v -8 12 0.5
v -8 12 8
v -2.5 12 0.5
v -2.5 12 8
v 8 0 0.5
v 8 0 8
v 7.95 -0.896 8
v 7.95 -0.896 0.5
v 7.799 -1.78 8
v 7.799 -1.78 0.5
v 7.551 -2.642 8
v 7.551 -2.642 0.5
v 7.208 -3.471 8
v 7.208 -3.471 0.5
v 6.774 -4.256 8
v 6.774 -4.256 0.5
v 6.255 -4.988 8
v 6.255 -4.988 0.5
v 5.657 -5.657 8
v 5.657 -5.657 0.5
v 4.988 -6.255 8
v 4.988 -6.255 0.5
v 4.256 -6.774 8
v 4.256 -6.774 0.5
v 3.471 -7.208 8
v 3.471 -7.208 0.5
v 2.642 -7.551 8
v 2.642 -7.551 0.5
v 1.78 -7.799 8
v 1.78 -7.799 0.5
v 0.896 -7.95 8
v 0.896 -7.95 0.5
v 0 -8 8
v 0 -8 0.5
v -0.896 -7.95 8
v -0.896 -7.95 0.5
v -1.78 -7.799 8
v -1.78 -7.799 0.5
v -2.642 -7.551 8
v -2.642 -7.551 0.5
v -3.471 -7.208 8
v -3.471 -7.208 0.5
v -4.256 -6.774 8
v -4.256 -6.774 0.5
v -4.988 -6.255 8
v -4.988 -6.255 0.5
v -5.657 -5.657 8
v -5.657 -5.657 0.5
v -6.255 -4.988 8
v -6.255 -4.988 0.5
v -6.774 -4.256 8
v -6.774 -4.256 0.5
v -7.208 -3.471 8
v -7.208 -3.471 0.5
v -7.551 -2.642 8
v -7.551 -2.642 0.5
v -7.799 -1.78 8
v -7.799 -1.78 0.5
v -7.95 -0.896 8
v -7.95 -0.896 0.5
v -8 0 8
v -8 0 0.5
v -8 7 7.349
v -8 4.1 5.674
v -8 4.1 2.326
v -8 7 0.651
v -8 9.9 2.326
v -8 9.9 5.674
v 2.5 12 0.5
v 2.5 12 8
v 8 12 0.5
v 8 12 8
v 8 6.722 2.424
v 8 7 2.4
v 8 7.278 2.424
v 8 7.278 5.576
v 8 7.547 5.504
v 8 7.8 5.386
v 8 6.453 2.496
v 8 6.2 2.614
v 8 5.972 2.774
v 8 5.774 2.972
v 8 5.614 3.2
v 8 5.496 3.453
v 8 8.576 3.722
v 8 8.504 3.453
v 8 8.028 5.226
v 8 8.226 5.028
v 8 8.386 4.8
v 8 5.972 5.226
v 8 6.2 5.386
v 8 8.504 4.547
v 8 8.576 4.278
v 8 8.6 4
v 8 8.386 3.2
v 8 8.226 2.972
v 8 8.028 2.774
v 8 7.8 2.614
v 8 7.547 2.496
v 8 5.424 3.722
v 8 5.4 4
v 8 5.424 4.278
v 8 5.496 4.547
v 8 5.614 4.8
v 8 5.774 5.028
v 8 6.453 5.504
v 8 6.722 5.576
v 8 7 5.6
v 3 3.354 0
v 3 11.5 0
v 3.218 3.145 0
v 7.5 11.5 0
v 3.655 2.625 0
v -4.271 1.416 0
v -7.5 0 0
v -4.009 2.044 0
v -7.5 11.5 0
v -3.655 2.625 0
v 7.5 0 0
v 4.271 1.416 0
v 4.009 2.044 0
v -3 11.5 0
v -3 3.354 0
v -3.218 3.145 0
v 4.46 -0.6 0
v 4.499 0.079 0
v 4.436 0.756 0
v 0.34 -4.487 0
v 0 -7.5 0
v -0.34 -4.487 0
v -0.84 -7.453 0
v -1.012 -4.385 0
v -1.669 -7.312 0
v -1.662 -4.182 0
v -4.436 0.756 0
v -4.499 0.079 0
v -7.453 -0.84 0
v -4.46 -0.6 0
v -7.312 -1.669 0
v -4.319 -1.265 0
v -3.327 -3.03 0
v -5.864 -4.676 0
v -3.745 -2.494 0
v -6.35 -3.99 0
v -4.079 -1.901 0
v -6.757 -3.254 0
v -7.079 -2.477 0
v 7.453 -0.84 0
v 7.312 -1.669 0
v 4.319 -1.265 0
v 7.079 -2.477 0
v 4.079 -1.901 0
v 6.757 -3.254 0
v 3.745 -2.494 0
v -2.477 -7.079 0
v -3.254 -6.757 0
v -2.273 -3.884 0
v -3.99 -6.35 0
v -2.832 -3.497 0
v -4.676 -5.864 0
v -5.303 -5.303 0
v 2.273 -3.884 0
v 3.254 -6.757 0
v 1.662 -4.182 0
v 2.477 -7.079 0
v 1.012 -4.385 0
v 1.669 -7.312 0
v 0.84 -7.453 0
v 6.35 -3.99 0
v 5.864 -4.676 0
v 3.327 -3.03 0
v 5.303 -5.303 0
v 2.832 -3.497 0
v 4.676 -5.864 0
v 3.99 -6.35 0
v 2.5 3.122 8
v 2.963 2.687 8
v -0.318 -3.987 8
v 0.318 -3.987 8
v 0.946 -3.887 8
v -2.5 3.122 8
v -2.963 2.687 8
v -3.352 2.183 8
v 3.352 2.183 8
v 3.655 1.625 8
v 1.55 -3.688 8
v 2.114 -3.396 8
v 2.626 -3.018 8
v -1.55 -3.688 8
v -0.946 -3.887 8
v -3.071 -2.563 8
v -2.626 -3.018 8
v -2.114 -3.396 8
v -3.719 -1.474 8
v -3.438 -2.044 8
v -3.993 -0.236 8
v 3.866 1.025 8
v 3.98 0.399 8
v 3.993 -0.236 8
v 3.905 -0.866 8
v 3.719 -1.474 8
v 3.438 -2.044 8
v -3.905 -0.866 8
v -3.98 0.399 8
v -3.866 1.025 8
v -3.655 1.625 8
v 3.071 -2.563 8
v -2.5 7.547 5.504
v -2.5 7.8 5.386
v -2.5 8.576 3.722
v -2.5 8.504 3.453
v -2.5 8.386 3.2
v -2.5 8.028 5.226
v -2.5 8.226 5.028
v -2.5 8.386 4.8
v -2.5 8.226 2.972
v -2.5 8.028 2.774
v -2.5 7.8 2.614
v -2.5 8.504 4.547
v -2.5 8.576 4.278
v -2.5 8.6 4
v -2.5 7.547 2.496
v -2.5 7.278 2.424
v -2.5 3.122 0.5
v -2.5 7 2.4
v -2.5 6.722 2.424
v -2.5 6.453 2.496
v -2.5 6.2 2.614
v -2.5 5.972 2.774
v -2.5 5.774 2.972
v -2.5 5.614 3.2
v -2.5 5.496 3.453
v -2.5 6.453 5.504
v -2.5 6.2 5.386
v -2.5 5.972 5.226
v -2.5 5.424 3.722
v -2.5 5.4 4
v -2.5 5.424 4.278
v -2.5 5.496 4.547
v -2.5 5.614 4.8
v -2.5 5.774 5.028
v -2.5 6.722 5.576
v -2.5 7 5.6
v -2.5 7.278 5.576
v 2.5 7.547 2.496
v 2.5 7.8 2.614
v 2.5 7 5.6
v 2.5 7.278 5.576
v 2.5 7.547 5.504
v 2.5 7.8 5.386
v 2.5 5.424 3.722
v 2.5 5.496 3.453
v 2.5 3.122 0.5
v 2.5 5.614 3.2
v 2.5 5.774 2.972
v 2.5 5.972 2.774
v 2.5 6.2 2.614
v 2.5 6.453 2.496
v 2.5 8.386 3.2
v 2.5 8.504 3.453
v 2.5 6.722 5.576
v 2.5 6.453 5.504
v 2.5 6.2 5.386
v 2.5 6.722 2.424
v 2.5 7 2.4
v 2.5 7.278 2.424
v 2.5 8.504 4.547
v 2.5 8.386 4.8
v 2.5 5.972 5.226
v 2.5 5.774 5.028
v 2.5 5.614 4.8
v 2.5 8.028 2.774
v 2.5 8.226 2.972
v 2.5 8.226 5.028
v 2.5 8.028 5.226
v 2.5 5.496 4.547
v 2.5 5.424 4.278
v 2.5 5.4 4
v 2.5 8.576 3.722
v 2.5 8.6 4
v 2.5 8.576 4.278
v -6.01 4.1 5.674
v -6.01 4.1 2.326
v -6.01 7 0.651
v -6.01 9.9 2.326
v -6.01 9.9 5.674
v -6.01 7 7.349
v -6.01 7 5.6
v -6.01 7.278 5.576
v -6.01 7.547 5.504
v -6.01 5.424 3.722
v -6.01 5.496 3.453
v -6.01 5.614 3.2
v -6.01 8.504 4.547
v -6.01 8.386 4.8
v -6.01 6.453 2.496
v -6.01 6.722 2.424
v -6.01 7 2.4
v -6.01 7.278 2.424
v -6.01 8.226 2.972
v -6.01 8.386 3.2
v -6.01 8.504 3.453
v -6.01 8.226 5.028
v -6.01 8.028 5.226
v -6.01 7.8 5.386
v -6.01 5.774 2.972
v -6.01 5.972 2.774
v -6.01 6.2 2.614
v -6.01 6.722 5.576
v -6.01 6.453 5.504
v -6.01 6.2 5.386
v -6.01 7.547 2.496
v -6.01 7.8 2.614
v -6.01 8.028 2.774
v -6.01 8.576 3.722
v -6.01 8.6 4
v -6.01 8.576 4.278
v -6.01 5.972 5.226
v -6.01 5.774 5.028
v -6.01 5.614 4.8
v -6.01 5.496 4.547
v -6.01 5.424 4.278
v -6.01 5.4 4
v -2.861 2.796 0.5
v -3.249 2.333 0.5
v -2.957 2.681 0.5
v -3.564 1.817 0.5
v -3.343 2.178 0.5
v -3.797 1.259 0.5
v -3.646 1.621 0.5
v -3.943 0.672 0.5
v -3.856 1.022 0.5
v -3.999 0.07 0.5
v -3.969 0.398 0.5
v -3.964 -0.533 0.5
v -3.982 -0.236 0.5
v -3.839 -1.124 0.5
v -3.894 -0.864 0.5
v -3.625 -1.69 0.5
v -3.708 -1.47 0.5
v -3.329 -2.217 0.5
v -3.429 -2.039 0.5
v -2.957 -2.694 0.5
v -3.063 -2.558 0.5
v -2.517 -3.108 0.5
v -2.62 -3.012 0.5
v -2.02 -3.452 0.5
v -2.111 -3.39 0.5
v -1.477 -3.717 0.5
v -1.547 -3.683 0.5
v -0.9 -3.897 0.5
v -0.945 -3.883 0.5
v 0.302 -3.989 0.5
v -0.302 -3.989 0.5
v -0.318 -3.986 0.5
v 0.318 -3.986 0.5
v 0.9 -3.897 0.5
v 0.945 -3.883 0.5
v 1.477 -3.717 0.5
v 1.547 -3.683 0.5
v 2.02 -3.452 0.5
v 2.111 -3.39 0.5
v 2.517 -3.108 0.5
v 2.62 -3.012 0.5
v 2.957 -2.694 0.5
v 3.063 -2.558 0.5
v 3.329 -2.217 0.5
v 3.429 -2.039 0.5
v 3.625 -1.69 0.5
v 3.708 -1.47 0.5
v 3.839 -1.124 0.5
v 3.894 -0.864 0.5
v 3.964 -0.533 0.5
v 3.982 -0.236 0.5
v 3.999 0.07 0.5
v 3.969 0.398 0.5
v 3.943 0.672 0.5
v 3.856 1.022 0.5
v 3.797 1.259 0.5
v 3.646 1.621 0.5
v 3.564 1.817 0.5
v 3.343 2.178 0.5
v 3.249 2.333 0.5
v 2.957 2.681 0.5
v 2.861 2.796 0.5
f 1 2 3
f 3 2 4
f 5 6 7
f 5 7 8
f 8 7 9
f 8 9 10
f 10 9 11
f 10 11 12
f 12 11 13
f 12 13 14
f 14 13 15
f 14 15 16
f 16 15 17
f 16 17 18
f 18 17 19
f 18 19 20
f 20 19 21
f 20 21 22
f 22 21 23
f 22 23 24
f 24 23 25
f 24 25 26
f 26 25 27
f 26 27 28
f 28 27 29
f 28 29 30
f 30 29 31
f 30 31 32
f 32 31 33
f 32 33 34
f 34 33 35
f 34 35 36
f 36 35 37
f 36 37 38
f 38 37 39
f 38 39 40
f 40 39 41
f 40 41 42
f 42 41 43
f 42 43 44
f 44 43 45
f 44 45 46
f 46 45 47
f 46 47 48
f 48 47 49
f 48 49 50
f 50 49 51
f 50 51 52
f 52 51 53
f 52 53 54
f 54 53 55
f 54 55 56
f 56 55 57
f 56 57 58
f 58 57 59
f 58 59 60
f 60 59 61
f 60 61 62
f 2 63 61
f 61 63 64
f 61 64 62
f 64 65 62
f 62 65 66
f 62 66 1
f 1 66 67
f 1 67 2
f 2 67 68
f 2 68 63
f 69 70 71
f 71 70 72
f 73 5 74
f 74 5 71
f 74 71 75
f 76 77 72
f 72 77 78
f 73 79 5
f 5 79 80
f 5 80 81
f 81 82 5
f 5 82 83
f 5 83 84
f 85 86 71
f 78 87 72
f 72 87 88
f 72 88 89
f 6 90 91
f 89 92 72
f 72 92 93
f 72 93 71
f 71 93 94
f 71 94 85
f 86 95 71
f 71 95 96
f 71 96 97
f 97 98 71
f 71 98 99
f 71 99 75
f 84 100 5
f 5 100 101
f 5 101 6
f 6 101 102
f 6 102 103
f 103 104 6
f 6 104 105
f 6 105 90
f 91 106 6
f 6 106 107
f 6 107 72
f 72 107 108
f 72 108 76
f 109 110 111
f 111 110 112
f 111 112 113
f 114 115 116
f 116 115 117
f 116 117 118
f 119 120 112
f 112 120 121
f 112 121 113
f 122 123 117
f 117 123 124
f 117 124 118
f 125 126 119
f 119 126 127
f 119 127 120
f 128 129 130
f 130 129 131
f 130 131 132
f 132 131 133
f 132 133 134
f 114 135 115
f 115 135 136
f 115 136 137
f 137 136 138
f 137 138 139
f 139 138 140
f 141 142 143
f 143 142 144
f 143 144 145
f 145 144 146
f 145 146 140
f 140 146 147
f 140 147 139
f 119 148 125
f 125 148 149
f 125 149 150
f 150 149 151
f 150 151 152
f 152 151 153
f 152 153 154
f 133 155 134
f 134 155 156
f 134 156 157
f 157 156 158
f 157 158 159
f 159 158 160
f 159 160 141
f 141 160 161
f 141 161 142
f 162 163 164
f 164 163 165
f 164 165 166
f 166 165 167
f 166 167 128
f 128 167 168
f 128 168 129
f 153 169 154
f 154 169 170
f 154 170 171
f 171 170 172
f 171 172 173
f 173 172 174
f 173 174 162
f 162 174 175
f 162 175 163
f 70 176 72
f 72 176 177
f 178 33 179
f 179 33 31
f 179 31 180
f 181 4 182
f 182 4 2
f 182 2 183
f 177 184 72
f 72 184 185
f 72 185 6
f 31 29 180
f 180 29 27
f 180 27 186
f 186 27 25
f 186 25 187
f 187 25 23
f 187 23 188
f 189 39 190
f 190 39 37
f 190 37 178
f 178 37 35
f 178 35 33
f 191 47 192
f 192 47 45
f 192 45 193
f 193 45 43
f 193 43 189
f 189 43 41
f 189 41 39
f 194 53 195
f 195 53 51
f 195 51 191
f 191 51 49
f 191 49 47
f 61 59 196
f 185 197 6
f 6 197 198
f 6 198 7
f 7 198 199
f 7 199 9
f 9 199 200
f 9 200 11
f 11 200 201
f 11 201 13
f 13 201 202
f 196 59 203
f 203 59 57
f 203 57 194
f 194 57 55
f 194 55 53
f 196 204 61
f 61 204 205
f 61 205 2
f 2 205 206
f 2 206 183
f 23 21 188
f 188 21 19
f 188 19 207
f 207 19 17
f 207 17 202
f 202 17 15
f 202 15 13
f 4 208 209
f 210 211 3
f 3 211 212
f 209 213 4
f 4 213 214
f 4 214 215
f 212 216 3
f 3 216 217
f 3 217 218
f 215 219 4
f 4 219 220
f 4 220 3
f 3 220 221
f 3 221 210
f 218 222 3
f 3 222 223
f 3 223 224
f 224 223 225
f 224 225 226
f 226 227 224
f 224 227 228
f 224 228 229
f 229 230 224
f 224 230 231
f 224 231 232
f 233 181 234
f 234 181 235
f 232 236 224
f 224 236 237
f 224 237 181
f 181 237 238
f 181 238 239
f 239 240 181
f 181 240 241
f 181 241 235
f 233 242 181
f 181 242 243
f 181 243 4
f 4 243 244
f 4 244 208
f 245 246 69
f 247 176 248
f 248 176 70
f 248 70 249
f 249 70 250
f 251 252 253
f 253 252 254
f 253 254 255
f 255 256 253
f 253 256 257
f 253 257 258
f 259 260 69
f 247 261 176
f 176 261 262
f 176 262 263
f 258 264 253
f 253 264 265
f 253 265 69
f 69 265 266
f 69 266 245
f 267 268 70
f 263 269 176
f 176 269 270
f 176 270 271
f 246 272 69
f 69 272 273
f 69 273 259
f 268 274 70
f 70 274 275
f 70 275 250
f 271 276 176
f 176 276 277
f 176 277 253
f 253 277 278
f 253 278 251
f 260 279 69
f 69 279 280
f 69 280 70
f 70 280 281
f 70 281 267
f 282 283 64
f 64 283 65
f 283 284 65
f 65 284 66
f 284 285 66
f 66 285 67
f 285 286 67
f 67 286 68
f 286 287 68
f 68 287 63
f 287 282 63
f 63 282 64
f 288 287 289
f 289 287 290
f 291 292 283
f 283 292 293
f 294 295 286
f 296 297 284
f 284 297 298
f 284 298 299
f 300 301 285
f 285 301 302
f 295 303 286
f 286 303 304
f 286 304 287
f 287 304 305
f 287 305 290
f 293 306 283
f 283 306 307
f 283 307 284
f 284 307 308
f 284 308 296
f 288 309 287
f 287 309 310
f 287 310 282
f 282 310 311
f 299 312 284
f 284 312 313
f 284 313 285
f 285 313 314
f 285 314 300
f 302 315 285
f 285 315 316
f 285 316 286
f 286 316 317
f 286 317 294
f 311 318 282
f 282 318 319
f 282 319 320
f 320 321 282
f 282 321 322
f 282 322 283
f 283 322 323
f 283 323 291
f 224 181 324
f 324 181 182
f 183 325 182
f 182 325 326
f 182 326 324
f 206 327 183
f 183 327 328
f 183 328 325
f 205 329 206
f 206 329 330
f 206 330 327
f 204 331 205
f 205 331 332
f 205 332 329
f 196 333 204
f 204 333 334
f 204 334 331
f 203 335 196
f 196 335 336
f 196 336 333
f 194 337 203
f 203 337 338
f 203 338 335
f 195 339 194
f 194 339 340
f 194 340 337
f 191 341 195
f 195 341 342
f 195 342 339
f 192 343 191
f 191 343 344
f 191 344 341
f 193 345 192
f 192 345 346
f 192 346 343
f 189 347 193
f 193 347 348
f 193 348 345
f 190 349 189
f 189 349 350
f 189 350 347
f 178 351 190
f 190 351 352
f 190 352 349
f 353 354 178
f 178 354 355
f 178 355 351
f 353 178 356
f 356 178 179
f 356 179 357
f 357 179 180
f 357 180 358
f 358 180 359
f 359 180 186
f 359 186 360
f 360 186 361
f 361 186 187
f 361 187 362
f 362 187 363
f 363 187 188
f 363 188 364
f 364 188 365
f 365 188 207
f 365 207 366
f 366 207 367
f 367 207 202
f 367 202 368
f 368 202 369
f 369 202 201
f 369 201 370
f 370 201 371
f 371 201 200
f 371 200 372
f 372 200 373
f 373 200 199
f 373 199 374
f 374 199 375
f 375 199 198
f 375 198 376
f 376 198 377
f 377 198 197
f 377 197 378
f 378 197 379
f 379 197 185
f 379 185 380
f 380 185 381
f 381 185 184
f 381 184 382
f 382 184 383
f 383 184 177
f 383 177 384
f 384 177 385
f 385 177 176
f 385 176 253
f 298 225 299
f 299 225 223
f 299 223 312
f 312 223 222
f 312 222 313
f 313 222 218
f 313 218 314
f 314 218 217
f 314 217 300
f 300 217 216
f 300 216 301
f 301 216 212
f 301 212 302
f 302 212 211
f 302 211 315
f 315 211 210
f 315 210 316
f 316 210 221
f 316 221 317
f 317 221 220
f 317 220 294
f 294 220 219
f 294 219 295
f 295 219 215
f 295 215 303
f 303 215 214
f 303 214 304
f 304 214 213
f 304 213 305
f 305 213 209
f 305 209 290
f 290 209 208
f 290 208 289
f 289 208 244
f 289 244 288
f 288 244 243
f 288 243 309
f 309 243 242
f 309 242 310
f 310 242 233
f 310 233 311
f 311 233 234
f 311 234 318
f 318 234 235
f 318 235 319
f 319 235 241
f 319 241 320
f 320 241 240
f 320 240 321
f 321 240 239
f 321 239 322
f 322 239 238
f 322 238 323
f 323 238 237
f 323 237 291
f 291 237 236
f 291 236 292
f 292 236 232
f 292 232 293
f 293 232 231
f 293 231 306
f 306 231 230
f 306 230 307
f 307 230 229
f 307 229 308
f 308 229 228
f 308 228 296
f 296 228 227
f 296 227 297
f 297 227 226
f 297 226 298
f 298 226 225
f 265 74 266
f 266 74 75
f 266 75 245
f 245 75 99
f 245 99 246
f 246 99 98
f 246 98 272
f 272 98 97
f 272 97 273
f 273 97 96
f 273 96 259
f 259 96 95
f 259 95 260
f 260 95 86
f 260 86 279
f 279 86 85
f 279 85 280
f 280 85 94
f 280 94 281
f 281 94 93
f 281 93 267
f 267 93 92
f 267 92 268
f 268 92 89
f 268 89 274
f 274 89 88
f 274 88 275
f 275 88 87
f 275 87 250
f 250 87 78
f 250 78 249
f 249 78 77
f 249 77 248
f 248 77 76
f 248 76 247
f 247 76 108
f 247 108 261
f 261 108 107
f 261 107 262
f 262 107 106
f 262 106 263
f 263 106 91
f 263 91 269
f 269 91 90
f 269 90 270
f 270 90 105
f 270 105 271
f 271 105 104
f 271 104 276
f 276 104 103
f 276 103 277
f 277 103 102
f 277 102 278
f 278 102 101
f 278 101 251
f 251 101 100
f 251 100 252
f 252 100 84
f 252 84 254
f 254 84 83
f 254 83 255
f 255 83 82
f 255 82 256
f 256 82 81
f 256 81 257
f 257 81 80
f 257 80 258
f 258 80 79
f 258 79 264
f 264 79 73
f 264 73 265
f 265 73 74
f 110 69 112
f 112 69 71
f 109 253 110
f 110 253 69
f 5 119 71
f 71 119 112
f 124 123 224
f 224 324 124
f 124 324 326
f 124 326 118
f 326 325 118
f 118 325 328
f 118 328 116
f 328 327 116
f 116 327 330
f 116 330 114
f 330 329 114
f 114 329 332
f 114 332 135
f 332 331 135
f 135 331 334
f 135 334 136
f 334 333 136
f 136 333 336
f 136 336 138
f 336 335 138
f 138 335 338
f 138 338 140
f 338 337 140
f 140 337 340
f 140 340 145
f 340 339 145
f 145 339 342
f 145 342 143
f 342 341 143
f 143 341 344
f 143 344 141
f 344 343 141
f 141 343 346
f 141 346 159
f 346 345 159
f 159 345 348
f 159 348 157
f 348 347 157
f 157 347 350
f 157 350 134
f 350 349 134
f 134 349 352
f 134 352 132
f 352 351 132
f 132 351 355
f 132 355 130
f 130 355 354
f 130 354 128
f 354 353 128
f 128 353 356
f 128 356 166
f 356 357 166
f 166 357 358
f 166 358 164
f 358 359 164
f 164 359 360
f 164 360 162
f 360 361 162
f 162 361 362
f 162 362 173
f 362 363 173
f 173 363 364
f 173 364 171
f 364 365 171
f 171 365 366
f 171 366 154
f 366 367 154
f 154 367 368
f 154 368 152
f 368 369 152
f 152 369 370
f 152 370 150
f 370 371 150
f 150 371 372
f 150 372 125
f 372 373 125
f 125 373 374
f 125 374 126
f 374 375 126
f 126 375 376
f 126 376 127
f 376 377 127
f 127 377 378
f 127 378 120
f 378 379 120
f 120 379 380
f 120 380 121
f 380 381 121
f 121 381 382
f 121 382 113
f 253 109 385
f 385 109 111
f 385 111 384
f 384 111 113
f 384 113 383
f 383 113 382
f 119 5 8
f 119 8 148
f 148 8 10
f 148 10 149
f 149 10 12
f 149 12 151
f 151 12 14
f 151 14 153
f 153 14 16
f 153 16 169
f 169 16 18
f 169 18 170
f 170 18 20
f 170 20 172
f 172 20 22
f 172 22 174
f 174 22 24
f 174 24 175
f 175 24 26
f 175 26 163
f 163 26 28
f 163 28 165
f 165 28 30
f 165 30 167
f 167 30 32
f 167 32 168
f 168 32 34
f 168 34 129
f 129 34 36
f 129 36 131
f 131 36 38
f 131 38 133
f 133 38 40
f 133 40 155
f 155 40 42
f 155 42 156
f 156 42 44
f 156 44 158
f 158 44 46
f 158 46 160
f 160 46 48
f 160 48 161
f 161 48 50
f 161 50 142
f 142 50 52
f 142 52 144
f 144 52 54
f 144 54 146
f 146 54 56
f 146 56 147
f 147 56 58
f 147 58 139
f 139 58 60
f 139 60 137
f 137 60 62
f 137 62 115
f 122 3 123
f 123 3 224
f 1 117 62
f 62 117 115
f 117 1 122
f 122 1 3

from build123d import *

# Parameters (mm, degrees)
BOSS_EXTRUDE1_DEPTH = 8
CUT_EXTRUDE1_DEPTH  = 17.492422502
CUT_EXTRUDE2_DEPTH  = 1.99
CUT_EXTRUDE4_REACH  = 23.541
SKETCH6_W           = 4
SKETCH6_H           = 8
SKETCH7_R           = 1.6
CUT_EXTRUDE5_DEPTH  = 22.540659229
CHAMFER1_SIZE       = 0.5


with BuildPart() as part:
    # Sketch1 → Boss-Extrude1 (new body)
    with BuildSketch(Plane.XY.offset(8)):
        with BuildLine():
            Line((8, 0), (8, 12))
            Line((8, 12), (-8, 12))
            Line((-8, 12), (-8, 0))
            ThreePointArc((-8, 0), (0, -8), (8, 0))
        make_face()
    extrude(amount=-BOSS_EXTRUDE1_DEPTH)

    # Sketch2 → Cut-Extrude1 (cut, through all)
    with BuildSketch(Plane(origin=(0, 0, 0), x_dir=(-1, 0, 0), z_dir=(0, 0, -1))):
        with BuildLine():
            Line((2.5, 12), (-2.5, 12))
            Line((-2.5, 12), (-2.5, 3.122498999))
            ThreePointArc((-2.5, 3.122498999), (0, 4), (2.5, 3.122498999))
            Line((2.5, 3.122498999), (2.5, 12))
        make_face()
    extrude(amount=-CUT_EXTRUDE1_DEPTH, mode=Mode.SUBTRACT)

    # Sketch3 → Cut-Extrude2 (cut)
    with BuildSketch(Plane.ZY.offset(8)):
        Polygon((5.674315, 4.100001352), (7.34863, 7), (5.674315, 9.899998648), (2.325685, 9.899998648), (0.65137, 7), (2.325685, 4.100001352), align=None)
    extrude(amount=-CUT_EXTRUDE2_DEPTH, mode=Mode.SUBTRACT)

    # Sketch5 → Cut-Extrude4 (cut, up to next)
    with BuildSketch(Plane(origin=(8, 0, 0), x_dir=(0, 0, -1), z_dir=(1, 0, 0)), mode=Mode.PRIVATE) as cut_extrude4_sk1:
        Polygon((-5.33035138, 6.111087627), (-5.13137085, 5.86862915), (-4.888912373, 5.66964862), (-4.612293492, 5.521792748), (-4.312144515, 5.430743551), (-4, 5.4), (-3.687855485, 5.430743551), (-3.387706508, 5.521792748), (-3.111087627, 5.66964862), (-2.86862915, 5.86862915), (-2.66964862, 6.111087627), (-2.521792748, 6.387706508), (-2.430743551, 6.687855485), (-2.4, 7), (-2.430743551, 7.312144515), (-2.521792748, 7.612293492), (-2.66964862, 7.888912373), (-2.86862915, 8.13137085), (-3.111087627, 8.33035138), (-3.387706508, 8.478207252), (-3.687855485, 8.569256449), (-4, 8.6), (-4.312144515, 8.569256449), (-4.612293492, 8.478207252), (-4.888912373, 8.33035138), (-5.13137085, 8.13137085), (-5.33035138, 7.888912373), (-5.478207252, 7.612293492), (-5.569256449, 7.312144515), (-5.6, 7), (-5.569256449, 6.687855485), (-5.478207252, 6.387706508), align=None)
    cut_extrude4_tool1 = extrude(cut_extrude4_sk1.sketch, amount=-CUT_EXTRUDE4_REACH, mode=Mode.PRIVATE) & part.part
    add(cut_extrude4_tool1.solids().sort_by_distance((8, 7, 4))[0], mode=Mode.SUBTRACT)

    # Sketch6 → Cut-Revolve1 (revolve, cut)
    with BuildSketch(Plane(origin=(0, 0, 0), x_dir=(1, 0, 0), z_dir=(0, 1, 0))):
        with Locations((2, -4)):
            Rectangle(SKETCH6_W, SKETCH6_H)
    revolve(axis=Axis((0, 0, 0), (0, 0, 1)), mode=Mode.SUBTRACT)

    # Sketch7 → Cut-Extrude5 (cut, through all)
    with BuildSketch(Plane(origin=(8, 0, 0), x_dir=(0, 0, -1), z_dir=(1, 0, 0))):
        with Locations(Location((-4, 7, 0), (0, 0, 270))):
            Circle(SKETCH7_R)
    extrude(amount=-CUT_EXTRUDE5_DEPTH, mode=Mode.SUBTRACT)

    # Chamfer1
    chamfer1_edges = [part.edges().sort_by_distance(p)[0] for p in [
        (5.25, 12, 0),
        (-8, 6, 0),
        (0, -4, 0),
        (-5.25, 12, 0),
        (-2.5, 7.5612495, 0),
        (2.5, 7.5612495, 0),
        (0, -8, 0),
        (8, 6, 0),
    ]]
    chamfer(chamfer1_edges, length=CHAMFER1_SIZE)


solid = part.part
